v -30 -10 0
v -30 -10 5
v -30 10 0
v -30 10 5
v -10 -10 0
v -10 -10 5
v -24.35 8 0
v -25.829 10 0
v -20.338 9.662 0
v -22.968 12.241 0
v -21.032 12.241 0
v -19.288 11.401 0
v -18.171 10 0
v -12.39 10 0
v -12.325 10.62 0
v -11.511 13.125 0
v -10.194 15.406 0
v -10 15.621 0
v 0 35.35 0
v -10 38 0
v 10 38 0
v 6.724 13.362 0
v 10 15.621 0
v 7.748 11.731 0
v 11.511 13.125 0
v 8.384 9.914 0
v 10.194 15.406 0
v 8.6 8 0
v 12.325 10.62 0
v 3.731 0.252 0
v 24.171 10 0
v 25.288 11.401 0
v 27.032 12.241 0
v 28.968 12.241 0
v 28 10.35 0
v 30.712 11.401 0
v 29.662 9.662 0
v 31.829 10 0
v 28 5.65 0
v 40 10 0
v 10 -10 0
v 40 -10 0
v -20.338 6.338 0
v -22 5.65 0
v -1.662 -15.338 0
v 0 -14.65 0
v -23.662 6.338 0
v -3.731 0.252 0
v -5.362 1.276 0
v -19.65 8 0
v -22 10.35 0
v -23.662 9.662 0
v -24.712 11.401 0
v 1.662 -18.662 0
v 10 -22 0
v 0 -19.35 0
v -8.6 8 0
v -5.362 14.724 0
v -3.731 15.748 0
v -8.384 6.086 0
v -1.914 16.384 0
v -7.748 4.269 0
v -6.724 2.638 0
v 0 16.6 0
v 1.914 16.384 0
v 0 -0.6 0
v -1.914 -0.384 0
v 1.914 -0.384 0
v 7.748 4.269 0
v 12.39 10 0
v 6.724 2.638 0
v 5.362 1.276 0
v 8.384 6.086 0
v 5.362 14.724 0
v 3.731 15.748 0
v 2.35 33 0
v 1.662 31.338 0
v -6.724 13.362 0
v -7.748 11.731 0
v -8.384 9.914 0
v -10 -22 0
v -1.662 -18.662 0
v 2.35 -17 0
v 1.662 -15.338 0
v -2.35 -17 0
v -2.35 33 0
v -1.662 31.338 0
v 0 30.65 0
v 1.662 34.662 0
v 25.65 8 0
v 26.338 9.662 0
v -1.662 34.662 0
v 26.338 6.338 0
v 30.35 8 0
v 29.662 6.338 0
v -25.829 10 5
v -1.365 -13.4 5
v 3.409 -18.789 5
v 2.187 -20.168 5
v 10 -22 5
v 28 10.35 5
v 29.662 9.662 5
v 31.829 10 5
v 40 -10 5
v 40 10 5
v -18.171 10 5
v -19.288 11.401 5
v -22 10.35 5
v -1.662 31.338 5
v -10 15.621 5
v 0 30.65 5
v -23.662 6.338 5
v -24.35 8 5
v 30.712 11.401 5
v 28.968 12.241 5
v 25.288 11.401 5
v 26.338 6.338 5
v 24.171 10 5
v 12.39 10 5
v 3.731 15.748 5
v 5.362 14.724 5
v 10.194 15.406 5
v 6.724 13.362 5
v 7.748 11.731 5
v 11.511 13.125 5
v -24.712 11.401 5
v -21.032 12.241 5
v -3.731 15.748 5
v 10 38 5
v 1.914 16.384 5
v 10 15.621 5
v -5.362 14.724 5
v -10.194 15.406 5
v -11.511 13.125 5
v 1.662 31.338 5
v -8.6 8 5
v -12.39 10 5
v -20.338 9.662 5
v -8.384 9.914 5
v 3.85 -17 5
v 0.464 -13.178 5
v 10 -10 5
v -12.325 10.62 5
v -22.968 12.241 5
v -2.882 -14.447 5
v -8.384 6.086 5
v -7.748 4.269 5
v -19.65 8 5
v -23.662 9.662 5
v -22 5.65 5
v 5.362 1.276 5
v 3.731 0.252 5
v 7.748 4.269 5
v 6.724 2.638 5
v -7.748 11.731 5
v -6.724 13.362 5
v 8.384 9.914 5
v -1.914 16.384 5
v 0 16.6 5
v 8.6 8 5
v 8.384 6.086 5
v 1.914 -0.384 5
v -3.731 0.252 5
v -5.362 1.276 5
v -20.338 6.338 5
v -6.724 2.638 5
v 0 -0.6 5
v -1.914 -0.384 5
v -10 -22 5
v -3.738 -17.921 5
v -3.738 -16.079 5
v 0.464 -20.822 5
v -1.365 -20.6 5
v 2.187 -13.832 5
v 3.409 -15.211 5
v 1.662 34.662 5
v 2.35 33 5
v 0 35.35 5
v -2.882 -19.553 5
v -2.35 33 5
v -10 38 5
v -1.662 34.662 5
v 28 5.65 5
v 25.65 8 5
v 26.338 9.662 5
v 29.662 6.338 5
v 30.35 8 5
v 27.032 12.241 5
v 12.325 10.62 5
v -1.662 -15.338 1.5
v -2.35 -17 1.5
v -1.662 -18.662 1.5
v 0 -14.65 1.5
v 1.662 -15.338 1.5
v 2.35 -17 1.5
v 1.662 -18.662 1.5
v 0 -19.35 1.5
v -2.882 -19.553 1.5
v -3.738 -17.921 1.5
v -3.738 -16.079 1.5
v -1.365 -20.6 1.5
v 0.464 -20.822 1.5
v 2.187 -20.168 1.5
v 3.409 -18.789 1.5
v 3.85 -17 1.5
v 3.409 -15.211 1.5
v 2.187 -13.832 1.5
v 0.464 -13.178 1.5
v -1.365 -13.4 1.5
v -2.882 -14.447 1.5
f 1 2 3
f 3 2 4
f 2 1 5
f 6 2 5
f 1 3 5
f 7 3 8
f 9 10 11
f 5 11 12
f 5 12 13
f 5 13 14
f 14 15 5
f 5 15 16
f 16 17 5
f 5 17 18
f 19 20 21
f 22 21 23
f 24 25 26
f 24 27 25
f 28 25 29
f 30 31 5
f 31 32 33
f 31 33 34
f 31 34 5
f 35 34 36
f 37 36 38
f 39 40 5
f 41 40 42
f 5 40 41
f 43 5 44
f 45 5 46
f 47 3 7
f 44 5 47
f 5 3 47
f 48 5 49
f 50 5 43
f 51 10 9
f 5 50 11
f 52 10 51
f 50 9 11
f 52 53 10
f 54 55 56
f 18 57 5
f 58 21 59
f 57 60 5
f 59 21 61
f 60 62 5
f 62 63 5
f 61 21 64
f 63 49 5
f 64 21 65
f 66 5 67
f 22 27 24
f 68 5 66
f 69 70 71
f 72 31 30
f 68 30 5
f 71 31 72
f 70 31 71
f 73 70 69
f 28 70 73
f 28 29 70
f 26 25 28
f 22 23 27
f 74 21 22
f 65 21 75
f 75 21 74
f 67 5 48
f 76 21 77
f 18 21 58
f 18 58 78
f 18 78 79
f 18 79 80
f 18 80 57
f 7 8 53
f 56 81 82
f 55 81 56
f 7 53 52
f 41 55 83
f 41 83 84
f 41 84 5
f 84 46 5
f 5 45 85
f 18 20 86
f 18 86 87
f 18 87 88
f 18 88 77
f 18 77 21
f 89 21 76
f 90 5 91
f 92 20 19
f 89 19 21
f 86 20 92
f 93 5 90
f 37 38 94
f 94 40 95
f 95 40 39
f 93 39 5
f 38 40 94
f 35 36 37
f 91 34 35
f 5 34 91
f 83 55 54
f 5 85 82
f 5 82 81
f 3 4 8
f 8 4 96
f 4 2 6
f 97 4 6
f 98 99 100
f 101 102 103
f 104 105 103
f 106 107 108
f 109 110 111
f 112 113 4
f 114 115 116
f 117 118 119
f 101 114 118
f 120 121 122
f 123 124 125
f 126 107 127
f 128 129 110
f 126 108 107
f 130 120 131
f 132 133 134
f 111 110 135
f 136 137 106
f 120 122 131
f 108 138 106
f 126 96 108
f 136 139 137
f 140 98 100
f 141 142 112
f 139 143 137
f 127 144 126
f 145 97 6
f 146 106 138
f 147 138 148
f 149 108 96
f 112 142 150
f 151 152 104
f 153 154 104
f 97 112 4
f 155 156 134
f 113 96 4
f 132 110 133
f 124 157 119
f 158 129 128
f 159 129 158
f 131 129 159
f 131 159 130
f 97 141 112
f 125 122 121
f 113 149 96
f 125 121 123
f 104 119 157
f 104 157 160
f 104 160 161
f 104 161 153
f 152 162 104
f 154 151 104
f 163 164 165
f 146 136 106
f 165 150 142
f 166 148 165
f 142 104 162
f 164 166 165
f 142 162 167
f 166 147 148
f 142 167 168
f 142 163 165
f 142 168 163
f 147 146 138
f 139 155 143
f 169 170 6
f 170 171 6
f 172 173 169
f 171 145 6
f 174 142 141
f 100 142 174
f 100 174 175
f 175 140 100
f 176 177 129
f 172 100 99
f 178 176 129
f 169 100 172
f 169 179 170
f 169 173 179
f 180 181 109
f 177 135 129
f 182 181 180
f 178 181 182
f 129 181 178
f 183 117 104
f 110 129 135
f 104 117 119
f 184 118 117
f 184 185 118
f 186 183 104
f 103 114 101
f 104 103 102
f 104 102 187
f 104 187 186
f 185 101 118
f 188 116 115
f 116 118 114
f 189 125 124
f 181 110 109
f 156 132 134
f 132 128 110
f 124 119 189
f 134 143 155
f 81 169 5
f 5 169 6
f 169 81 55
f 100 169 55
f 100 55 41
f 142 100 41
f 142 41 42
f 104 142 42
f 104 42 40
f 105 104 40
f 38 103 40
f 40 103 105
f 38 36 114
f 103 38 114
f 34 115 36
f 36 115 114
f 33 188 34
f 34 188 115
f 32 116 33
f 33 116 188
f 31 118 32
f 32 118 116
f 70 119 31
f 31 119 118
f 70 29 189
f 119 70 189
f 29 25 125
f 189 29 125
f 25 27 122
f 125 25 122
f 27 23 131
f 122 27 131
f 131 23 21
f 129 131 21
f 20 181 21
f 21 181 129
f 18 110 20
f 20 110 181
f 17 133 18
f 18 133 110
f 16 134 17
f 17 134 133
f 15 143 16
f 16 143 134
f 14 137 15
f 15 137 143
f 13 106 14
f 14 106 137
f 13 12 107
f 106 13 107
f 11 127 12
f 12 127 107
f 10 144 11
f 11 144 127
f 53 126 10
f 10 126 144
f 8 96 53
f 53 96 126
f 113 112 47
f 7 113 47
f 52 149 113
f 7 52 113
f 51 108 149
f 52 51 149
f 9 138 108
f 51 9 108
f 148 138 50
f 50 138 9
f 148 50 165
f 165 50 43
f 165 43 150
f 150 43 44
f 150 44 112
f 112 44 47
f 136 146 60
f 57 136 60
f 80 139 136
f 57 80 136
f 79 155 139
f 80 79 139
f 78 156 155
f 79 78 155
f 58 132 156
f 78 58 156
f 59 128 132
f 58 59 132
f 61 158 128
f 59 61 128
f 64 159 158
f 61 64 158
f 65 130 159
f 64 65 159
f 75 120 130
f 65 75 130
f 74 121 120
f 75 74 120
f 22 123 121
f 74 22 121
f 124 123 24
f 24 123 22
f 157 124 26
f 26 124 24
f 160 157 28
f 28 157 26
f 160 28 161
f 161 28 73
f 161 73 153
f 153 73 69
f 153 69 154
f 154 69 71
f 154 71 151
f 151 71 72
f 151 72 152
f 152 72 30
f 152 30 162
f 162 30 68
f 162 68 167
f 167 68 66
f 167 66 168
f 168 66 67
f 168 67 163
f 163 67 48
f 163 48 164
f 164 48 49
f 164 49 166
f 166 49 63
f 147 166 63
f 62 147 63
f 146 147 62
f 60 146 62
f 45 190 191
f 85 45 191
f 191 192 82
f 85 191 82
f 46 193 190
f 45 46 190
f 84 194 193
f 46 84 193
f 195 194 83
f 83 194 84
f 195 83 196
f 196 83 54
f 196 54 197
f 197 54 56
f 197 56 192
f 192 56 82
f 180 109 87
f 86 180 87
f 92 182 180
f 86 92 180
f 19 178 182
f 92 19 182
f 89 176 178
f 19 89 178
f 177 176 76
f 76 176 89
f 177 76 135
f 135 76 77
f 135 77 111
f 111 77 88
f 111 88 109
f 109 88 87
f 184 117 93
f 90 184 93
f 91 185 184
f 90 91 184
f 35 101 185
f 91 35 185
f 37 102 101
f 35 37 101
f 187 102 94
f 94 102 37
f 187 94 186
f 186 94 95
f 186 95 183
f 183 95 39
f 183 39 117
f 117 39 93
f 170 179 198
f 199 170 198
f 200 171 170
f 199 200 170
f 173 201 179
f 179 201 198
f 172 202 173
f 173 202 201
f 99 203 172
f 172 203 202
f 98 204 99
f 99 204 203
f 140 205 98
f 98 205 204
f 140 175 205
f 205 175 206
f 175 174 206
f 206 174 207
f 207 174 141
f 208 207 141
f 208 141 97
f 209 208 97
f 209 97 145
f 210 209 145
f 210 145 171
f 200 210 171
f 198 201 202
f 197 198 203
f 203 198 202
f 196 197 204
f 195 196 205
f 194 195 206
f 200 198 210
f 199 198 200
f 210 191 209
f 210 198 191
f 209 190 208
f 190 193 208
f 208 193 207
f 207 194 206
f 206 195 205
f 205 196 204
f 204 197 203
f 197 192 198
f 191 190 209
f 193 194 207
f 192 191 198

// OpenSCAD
/*

RepRap Wade Extruder Mount #1

Tony Buser <tbuser@gmail.com>
http://tonybuser.com
http://replimat.com

Improvements:

	* mounted horizontally to improve clearance
	* prevents motor collision on left side at 0mm X above ~50mm Z
	* now only collides frame on right if you go past 160mm X and above 90mm Z
	* hot end now centered in carriage
	* can now be removed from carriage without having to dissasemble first
	* lifts makerbot sized hot end to increase max Z by 5mm

*/

mount_height = 5;
insulator_diameter = 17.2;
bolt_diameter = 4.7;

module wade_mount_base() {
	translate([0, 0, 0]) {
		union() {
			translate([5, 0, 0]) {
				cube([70, 20, mount_height], center=true);
			}

			translate([0, 8, 0]) {
				cube([20, 60, mount_height], center=true);
			}

			// insulator
			translate([0, 8, 0]) {
				cylinder(mount_height, insulator_diameter/2+4, insulator_diameter/2+4, center=true);
			}

			// left wade mounting hole
			translate([-20-2, 8, 0]) {
				cylinder(mount_height, bolt_diameter/2+2, bolt_diameter/2+2, center=true);
			}


			// right wade mounting hole
			translate([30-2, 8, 0]) {
				cylinder(mount_height, bolt_diameter/2+2, bolt_diameter/2+2, center=true);
			}

		}
	}
}

module wade_mount() {
	difference() {
		wade_mount_base();

		// insulator
		translate([0, 8, 0]) {
			cylinder(mount_height+2, insulator_diameter/2, insulator_diameter/2, center=true);
		}

		// back mounting hole
		translate([0, 25+8, 0]) {
			cylinder(mount_height+2, bolt_diameter/2, bolt_diameter/2, center=true);
		}

		// front mounting hole
		translate([0, -25+8, 0]) {
			cylinder(mount_height+2, bolt_diameter/2, bolt_diameter/2, center=true);
		}

		// front mounting hole inset
		translate([0, -25+8, mount_height-3.5]) {
			cylinder(mount_height, (bolt_diameter+3)/2, (bolt_diameter+3)/2, center=true);
		}
		
		// left wade mounting hole
		translate([-20-2, 8, 0]) {
			cylinder(mount_height+2, bolt_diameter/2, bolt_diameter/2, center=true);
		}


		// right wade mounting hole
		translate([30-2, 8, 0]) {
			cylinder(mount_height+2, bolt_diameter/2, bolt_diameter/2, center=true);
		}
	}
}

translate([0, 0, mount_height/2]) wade_mount();
